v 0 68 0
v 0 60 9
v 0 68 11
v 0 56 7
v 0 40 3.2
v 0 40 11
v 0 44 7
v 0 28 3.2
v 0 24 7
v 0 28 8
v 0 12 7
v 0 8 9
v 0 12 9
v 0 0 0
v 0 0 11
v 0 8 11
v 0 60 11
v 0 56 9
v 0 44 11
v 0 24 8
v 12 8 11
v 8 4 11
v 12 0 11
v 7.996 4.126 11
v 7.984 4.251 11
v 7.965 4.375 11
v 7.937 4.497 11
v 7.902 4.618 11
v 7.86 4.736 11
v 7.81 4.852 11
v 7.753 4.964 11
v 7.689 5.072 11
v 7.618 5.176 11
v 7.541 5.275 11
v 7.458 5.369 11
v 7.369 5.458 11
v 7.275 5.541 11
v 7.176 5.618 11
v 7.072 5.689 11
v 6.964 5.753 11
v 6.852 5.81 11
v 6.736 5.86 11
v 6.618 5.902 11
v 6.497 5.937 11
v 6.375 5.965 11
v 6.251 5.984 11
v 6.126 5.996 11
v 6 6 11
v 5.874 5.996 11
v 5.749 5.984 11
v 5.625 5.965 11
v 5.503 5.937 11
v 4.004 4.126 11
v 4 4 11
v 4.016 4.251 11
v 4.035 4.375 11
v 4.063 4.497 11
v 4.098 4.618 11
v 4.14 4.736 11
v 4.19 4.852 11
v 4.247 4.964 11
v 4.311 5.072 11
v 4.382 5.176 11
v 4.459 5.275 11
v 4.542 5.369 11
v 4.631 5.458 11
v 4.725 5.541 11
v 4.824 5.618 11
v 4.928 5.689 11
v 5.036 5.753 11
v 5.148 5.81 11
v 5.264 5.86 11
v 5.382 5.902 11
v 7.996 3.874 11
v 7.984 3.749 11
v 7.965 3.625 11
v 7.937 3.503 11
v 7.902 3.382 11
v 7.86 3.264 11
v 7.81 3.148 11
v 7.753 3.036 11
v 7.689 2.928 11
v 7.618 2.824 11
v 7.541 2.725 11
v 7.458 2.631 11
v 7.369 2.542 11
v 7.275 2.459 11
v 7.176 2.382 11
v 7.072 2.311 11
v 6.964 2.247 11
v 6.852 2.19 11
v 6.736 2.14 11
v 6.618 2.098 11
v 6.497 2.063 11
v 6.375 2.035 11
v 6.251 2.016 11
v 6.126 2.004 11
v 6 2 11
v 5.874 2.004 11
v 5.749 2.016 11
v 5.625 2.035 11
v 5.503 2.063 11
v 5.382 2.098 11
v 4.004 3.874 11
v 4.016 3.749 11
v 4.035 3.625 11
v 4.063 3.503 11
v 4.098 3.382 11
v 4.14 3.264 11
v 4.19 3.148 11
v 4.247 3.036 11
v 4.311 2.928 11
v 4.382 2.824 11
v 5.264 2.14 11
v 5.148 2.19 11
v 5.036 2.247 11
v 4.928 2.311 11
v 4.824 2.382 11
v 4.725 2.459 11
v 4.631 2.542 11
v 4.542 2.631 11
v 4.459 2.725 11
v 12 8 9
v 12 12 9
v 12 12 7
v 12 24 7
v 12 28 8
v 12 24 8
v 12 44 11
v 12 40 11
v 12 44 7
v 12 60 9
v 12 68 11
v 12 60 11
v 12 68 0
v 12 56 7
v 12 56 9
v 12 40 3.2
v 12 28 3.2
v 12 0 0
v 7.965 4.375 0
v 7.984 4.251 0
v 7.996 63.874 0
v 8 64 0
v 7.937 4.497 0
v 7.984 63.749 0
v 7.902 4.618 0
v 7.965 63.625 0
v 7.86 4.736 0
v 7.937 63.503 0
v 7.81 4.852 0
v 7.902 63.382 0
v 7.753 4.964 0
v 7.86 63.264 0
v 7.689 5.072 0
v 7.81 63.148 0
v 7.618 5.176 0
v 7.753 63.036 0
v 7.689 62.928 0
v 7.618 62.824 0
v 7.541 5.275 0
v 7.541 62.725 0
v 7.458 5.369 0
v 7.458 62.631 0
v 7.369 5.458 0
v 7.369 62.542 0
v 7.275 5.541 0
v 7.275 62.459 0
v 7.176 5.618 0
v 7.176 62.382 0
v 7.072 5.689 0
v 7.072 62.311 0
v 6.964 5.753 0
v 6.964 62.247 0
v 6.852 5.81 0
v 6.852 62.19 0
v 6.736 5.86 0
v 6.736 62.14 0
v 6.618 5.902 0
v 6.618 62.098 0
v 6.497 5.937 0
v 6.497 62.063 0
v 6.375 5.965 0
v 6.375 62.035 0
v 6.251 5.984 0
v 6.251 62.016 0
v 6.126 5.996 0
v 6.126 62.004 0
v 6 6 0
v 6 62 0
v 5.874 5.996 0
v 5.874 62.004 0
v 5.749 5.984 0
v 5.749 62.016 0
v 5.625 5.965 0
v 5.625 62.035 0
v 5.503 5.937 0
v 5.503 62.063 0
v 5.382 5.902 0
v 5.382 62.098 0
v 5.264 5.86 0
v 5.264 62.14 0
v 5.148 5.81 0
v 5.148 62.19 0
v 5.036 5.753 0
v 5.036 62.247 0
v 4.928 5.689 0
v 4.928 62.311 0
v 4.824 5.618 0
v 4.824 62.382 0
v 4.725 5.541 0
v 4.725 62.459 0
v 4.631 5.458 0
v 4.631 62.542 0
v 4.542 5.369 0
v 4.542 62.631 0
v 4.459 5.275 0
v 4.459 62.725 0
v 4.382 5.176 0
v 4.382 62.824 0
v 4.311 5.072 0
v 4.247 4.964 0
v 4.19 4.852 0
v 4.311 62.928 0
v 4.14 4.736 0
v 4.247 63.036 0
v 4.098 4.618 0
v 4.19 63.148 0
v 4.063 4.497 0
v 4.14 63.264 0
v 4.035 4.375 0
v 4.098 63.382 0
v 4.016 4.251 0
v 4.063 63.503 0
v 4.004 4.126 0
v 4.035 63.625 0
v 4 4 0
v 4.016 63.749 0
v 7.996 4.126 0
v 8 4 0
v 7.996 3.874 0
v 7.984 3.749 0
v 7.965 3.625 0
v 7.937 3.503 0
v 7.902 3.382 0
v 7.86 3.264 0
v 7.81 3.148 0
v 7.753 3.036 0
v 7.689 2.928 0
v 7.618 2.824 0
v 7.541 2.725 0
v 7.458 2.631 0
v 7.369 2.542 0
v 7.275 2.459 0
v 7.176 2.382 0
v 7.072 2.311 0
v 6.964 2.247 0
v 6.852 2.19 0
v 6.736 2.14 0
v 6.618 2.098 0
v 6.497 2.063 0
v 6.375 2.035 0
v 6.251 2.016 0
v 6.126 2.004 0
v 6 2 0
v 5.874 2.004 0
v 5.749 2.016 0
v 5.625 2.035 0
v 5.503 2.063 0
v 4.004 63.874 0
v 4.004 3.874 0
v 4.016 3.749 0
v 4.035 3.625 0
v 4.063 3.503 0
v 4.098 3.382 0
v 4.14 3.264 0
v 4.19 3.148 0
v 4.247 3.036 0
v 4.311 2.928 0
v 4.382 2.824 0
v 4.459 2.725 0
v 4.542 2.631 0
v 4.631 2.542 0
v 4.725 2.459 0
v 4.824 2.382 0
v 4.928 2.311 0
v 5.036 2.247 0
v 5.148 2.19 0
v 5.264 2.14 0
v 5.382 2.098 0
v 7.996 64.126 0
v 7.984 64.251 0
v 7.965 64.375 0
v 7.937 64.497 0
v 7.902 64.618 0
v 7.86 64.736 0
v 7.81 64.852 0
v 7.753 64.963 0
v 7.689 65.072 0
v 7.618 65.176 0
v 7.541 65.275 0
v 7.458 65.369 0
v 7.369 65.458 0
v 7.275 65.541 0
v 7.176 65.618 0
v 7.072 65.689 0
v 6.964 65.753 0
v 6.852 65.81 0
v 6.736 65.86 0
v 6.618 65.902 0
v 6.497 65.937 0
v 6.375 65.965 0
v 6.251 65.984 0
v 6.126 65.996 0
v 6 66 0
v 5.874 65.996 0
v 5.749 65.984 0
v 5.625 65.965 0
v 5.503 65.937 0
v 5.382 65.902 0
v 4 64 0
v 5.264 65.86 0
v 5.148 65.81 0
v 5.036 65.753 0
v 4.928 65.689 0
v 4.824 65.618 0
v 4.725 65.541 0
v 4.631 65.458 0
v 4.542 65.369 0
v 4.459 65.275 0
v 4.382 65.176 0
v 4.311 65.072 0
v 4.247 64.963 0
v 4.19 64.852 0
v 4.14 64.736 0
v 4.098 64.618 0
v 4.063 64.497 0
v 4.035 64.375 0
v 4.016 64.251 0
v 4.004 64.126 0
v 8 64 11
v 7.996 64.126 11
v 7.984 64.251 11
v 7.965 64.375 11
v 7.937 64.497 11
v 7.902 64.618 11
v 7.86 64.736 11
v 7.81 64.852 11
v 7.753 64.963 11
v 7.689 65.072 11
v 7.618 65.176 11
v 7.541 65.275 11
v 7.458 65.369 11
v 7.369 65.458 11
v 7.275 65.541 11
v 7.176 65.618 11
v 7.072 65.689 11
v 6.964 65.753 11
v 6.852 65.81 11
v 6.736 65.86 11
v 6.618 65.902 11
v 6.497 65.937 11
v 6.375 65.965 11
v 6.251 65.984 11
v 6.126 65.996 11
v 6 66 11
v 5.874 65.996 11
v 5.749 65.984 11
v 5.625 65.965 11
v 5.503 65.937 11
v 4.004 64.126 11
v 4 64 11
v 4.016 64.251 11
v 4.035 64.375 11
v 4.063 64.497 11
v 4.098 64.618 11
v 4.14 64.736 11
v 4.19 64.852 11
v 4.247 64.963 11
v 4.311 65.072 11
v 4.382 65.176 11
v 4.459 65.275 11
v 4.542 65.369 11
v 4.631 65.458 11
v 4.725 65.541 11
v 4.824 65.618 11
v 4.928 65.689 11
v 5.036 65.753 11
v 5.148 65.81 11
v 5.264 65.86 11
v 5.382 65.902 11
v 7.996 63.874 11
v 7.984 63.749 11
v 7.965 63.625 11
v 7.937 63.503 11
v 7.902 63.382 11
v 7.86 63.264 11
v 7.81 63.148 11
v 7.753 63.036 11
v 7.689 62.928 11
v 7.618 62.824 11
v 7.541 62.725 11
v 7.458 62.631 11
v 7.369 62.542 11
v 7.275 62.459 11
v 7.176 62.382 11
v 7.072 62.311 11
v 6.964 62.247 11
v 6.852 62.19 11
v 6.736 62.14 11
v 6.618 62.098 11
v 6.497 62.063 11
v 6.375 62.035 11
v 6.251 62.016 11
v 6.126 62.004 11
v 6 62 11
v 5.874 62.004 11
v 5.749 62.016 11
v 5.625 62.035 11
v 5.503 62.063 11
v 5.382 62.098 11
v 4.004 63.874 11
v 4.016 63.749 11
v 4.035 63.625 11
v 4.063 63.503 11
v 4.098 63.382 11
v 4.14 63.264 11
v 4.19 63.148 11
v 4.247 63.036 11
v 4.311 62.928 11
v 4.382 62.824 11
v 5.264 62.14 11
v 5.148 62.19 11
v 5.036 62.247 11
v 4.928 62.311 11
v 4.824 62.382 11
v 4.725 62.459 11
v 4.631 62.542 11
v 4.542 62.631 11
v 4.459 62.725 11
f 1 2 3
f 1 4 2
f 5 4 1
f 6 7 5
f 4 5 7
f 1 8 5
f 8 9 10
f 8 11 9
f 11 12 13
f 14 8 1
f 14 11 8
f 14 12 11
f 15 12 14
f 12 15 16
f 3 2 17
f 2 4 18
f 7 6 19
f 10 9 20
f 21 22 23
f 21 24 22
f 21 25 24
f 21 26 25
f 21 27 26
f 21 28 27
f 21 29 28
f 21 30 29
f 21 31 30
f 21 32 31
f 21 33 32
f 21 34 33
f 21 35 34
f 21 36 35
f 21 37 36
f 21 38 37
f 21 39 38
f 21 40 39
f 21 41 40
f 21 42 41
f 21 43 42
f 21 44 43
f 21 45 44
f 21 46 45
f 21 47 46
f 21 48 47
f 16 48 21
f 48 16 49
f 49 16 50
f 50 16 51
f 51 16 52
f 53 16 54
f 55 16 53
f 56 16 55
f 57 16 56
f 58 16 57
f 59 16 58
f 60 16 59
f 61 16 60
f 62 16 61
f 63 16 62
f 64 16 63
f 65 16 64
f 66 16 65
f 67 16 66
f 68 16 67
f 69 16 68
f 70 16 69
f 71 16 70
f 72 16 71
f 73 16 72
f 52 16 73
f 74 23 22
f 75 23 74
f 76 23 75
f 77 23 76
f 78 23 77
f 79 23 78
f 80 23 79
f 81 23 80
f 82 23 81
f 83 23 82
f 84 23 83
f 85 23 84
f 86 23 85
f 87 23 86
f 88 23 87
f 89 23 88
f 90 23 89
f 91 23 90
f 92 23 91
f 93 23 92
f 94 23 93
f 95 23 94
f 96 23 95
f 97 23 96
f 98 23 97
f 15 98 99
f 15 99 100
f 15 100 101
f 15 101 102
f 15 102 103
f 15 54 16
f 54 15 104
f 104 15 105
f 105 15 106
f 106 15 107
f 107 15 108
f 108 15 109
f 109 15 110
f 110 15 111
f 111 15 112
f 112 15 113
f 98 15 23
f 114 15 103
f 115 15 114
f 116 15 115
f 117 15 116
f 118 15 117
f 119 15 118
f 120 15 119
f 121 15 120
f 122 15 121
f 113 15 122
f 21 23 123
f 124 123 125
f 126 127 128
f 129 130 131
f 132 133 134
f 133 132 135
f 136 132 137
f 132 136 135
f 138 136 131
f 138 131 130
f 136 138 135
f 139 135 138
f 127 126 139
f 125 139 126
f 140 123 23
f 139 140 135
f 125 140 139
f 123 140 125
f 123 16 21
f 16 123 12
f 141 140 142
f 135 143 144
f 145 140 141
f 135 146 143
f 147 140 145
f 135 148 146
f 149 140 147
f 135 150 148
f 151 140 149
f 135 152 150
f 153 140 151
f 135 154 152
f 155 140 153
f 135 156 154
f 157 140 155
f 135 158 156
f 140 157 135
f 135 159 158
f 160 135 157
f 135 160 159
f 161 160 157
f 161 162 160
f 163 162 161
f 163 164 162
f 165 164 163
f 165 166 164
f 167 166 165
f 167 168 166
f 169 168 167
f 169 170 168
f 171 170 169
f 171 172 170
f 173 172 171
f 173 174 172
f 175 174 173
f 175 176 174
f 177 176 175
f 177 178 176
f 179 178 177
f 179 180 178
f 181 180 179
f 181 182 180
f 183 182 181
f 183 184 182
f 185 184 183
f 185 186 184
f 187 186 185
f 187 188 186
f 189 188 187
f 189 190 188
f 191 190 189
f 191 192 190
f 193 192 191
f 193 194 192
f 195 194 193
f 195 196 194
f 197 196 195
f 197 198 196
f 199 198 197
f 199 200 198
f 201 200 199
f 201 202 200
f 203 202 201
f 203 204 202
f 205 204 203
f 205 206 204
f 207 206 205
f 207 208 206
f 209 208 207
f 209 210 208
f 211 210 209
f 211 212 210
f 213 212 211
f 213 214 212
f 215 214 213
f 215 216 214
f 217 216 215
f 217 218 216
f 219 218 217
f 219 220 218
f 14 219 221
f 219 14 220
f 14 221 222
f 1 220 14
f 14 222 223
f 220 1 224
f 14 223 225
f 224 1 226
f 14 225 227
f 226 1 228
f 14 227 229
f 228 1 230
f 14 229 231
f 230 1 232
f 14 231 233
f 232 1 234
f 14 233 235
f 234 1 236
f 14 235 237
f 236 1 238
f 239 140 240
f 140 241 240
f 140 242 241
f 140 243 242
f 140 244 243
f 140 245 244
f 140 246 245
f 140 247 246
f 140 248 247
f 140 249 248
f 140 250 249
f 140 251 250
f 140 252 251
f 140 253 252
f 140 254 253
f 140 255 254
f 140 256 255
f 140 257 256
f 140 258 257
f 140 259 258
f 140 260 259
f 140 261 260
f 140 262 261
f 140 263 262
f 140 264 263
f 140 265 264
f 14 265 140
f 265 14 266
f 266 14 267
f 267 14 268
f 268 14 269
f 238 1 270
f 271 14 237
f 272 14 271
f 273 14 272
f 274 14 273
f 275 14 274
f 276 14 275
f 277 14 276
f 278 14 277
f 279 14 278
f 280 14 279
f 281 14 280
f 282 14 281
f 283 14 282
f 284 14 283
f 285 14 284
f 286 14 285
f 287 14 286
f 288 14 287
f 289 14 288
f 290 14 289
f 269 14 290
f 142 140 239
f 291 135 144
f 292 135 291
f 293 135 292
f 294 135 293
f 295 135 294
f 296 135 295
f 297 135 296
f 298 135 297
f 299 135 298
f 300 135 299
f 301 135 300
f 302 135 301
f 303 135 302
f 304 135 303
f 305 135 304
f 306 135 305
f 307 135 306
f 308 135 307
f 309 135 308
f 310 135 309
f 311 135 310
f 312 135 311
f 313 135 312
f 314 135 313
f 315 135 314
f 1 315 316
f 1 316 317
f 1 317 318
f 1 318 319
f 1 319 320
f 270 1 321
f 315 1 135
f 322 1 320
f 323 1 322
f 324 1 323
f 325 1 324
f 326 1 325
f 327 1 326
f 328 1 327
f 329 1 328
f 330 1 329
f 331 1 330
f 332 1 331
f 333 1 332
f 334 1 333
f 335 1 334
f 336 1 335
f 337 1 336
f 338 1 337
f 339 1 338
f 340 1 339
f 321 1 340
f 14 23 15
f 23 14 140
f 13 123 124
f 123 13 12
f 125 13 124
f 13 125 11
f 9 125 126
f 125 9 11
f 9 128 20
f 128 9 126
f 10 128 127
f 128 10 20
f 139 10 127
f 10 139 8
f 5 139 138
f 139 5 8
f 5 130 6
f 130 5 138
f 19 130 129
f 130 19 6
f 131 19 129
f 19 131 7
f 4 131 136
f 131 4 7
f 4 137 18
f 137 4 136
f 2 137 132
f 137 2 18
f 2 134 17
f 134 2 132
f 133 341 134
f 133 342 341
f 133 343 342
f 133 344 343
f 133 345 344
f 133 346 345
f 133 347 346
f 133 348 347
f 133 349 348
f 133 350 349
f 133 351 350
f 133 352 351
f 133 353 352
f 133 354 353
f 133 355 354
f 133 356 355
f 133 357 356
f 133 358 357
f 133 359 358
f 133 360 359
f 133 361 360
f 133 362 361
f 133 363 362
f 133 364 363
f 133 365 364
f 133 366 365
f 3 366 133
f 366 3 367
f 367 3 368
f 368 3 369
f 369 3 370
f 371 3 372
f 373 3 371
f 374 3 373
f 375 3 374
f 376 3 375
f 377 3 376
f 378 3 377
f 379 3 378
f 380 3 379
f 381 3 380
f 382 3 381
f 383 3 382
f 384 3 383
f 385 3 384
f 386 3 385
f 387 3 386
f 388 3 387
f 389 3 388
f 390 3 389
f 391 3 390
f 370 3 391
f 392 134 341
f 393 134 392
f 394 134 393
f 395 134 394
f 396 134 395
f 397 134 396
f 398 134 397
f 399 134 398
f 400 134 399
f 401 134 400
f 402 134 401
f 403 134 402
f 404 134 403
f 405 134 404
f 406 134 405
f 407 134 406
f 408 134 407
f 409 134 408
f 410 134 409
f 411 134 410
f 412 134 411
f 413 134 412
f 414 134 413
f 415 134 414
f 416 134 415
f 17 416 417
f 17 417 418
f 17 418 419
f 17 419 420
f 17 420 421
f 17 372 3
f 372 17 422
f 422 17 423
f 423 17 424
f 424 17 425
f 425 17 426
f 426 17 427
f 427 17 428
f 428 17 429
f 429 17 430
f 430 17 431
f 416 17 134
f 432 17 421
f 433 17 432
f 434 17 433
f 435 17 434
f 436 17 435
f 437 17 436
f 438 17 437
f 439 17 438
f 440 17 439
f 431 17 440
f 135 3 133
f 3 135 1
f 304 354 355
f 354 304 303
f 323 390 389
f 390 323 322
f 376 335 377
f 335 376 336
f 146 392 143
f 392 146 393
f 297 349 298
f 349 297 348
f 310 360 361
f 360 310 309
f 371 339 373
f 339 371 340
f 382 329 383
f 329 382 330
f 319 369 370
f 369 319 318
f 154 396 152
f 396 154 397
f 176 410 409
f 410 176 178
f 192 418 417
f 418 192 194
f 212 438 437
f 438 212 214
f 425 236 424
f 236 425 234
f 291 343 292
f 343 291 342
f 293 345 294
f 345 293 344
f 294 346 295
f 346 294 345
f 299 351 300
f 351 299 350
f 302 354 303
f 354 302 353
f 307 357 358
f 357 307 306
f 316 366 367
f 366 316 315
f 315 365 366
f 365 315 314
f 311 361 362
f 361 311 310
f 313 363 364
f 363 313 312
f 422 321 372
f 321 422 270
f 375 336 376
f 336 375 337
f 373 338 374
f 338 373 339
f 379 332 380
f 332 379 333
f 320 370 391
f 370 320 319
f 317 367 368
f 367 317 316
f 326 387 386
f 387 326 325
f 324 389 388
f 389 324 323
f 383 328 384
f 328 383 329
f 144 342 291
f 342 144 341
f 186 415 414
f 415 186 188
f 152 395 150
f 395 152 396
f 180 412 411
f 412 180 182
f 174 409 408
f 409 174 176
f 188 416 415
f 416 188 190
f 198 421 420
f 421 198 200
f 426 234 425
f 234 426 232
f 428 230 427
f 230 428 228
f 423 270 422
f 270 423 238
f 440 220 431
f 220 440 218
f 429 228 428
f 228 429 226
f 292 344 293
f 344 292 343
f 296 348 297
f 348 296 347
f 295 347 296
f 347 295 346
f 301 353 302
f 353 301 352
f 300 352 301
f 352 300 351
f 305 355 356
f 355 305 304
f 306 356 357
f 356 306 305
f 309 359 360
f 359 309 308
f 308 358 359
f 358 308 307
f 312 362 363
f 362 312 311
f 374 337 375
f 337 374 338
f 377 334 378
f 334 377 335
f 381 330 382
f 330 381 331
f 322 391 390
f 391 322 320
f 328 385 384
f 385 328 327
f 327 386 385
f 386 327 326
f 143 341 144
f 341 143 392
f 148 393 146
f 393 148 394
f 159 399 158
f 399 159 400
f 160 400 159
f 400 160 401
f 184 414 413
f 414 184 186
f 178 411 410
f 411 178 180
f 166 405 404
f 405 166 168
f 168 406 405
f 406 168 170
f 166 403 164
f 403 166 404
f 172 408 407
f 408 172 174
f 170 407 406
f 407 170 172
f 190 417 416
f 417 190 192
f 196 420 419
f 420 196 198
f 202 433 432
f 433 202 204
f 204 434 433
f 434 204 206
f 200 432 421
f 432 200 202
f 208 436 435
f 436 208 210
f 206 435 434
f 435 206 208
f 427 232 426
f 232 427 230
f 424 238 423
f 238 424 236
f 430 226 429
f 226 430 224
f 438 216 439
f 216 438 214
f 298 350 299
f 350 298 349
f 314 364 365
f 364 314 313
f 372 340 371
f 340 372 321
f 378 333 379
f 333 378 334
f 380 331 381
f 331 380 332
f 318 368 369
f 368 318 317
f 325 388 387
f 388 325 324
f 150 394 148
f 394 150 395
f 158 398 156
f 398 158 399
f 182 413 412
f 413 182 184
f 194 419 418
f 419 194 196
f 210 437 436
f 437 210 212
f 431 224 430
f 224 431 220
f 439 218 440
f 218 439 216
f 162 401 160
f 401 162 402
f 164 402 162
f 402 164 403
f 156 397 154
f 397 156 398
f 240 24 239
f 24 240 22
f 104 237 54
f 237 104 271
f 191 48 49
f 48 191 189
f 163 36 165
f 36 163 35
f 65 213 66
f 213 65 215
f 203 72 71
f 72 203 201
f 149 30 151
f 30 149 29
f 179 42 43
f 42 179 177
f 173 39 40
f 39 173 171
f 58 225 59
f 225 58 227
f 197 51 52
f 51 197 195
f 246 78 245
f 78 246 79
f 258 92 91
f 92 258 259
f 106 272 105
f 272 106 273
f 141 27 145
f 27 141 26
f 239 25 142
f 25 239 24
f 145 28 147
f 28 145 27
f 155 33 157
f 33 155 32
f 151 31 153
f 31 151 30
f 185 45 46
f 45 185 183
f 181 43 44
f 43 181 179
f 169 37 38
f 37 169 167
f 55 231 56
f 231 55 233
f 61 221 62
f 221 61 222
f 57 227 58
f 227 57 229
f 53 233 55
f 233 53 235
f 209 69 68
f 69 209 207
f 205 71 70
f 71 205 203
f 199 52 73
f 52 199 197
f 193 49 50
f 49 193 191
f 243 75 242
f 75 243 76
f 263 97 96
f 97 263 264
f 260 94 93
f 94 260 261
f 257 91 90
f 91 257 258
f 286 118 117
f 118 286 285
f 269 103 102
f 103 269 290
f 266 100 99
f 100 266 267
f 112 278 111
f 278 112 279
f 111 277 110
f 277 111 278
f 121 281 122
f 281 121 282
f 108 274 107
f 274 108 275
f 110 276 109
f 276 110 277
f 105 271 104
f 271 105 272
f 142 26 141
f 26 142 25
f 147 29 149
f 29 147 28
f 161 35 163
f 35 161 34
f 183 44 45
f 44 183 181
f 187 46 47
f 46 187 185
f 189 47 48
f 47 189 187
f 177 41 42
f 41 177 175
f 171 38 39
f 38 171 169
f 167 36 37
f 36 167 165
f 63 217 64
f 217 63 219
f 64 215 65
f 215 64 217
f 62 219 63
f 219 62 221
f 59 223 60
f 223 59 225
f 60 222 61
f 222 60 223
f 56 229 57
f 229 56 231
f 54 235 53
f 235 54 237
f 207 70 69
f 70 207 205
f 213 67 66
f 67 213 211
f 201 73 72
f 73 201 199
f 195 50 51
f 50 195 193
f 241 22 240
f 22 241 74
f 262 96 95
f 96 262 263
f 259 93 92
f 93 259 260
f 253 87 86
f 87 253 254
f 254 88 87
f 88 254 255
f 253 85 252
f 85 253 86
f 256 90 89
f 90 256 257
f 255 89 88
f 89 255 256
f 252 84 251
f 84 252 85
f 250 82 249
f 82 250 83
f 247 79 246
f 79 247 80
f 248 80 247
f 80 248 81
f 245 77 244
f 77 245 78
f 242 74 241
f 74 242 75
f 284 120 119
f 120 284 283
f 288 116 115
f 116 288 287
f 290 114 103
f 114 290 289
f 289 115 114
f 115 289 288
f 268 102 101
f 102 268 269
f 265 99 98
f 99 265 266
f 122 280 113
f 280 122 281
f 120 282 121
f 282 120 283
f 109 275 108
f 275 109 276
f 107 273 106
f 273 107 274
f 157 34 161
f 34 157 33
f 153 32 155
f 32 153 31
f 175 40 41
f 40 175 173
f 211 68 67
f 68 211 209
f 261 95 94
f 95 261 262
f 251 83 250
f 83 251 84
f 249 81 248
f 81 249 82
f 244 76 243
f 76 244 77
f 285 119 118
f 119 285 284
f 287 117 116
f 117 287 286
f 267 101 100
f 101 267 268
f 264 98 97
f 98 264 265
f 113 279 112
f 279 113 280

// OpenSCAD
$fn=100;


height = 7;
width = 12;
separator = 4;
holeblock = 8;
hole = 2;
lower = height - 3.8;
tolerance = 0.3;
holeblock_h = height + 4;

difference(){
	union(){
		translate([0,  0, 0]) cube([width, holeblock, holeblock_h    ]);
		translate([0,  8, 0]) cube([width, separator, height+2       ]);
		translate([0, 12, 0]) cube([width, width,     height         ]);
		translate([0, 24, 0]) cube([width, separator, holeblock_h - 3]);
		translate([0, 28, 0]) cube([width, width,     lower          ]);
		translate([0, 40, 0]) cube([width, separator, holeblock_h    ]);
		translate([0, 44, 0]) cube([width, width,     height         ]);
		translate([0, 56, 0]) cube([width, separator, height+2       ]);
		translate([0, 60, 0]) cube([width, holeblock, holeblock_h    ]);
	}
	translate([width/2, 64, -tolerance]) cylinder(r=hole, h=holeblock_h + (tolerance*2));
	translate([width/2,  4, -tolerance]) cylinder(r=hole, h=holeblock_h + (tolerance*2));
}

// 0 - 14 - 16 -  16 - 14
